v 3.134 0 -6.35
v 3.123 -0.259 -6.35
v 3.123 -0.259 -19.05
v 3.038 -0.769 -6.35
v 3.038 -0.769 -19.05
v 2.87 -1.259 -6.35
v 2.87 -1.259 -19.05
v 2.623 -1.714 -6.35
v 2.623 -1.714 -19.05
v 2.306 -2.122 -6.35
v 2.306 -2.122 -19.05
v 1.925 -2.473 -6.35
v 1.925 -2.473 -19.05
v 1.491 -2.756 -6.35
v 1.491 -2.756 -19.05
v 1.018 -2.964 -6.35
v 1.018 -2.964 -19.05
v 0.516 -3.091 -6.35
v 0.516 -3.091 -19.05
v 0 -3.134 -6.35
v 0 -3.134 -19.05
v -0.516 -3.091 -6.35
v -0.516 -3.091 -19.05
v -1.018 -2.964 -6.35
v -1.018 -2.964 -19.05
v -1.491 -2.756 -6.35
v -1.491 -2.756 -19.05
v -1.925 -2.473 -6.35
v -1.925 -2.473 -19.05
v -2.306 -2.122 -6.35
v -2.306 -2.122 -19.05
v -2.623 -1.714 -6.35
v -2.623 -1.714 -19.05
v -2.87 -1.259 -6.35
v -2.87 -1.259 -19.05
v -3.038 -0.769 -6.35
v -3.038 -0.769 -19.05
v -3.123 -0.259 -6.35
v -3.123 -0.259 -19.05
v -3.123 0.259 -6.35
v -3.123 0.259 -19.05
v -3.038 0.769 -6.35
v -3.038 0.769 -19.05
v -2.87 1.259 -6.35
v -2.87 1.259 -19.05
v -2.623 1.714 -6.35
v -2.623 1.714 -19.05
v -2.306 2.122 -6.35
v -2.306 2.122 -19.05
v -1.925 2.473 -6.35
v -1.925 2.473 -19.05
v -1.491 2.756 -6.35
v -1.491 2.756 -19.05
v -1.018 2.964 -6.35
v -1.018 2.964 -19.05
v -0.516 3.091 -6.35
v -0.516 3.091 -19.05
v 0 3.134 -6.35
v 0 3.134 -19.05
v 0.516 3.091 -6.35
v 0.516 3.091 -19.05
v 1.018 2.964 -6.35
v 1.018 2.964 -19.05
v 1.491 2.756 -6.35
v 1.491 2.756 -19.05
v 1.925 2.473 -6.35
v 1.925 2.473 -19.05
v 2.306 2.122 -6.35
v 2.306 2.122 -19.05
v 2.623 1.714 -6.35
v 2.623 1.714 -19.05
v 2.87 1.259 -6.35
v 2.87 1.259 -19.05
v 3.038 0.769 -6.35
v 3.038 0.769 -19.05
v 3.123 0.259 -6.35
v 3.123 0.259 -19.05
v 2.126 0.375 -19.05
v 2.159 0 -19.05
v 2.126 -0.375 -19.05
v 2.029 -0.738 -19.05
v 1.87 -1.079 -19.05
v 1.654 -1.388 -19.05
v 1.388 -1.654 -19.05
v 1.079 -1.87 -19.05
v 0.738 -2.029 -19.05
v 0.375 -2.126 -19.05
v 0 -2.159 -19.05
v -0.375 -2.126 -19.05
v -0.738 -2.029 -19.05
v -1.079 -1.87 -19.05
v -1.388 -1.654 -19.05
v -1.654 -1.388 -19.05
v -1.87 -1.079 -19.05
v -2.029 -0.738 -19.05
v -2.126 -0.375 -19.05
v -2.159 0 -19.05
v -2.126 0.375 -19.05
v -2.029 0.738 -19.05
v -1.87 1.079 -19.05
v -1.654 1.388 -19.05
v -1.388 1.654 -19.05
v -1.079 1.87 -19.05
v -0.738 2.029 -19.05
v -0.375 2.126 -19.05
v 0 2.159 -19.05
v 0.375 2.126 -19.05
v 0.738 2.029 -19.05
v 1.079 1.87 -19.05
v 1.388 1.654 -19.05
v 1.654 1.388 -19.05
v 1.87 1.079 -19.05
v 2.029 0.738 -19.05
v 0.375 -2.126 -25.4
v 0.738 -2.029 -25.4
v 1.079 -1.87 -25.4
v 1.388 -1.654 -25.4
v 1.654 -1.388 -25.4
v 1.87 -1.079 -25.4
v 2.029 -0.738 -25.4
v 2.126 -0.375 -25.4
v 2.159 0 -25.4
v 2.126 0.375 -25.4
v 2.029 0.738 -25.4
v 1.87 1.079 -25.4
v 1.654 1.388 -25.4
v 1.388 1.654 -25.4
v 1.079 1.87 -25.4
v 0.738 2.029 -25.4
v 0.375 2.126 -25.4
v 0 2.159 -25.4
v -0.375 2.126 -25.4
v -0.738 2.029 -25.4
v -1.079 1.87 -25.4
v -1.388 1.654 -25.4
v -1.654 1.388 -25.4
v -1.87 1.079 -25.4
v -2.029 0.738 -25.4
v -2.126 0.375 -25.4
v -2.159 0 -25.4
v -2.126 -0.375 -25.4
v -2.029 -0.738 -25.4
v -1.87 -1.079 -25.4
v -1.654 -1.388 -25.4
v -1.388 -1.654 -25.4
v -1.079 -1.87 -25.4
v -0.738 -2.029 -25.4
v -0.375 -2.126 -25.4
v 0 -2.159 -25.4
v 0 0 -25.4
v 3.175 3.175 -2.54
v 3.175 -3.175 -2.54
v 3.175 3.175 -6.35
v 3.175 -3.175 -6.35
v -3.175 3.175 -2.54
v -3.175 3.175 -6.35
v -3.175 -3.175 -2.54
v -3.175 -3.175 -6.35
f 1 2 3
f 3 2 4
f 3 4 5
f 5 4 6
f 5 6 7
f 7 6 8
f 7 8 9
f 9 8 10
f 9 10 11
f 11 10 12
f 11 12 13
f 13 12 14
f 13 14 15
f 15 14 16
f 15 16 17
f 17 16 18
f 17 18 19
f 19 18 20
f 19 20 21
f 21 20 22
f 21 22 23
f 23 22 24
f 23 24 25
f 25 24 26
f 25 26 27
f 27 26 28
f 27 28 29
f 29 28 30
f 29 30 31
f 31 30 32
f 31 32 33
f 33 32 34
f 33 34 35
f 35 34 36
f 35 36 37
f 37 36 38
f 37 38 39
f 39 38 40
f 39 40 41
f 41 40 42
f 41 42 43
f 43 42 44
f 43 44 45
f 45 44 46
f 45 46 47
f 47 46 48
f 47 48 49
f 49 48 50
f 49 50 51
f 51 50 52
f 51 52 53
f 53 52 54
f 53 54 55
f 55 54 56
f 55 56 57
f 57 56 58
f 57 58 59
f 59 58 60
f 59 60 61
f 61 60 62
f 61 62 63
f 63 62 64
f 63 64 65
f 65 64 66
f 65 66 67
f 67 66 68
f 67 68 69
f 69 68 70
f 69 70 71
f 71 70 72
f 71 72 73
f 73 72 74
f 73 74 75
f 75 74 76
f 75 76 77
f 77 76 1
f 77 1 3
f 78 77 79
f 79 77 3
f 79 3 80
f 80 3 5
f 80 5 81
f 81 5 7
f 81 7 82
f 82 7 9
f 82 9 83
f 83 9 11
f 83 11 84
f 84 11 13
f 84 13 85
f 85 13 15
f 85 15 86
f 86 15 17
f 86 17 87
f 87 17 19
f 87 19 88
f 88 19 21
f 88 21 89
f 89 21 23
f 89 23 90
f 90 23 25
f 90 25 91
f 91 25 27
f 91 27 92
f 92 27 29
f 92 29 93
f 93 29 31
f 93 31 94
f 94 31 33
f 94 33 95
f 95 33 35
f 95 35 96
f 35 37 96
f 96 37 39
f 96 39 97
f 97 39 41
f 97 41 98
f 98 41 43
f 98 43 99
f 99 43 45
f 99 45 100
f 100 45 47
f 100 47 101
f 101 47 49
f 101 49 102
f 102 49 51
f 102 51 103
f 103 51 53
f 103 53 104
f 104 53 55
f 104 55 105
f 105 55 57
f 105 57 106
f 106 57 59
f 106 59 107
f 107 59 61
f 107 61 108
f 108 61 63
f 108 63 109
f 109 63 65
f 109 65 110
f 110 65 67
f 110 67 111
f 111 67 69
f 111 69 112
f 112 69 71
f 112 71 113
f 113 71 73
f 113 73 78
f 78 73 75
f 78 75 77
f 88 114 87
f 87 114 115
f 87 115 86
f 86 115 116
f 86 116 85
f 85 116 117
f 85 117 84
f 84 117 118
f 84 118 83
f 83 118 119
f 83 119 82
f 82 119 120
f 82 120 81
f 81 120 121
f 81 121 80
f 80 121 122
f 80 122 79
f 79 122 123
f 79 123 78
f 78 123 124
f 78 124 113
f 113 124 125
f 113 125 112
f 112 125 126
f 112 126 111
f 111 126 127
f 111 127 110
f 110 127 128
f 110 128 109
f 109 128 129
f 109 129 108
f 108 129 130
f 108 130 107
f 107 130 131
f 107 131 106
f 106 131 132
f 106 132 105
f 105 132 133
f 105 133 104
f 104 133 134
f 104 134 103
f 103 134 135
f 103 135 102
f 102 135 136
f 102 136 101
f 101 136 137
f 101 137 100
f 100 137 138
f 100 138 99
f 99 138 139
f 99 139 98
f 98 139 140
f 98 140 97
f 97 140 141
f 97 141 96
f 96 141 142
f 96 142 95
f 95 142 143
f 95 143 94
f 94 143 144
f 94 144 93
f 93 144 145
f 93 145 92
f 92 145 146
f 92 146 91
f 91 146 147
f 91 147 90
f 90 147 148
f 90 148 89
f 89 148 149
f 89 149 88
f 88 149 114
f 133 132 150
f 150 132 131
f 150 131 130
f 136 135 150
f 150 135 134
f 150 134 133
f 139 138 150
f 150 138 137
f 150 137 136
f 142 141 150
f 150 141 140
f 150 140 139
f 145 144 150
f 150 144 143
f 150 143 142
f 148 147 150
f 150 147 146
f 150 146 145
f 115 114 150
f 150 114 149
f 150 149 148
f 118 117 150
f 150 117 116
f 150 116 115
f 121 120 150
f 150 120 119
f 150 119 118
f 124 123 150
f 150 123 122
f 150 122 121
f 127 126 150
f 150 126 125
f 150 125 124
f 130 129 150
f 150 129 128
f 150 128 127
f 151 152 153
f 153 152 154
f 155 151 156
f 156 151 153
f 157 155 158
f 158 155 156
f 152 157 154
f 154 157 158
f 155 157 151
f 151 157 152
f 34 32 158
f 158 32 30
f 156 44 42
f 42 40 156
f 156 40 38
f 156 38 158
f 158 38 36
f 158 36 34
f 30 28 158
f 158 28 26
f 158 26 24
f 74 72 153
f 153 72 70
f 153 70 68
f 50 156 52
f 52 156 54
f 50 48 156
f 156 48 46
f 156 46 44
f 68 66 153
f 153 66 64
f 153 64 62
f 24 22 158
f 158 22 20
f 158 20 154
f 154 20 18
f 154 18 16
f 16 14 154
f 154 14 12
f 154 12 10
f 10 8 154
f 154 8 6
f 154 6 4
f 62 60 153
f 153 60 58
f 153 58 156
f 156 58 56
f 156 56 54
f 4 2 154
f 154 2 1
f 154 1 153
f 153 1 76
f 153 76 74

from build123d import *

# Parameters (mm, degrees)
SKETCH6_R           = 3.687499751
CUT_EXTRUDE3_DEPTH  = 29.1338
SKETCH7_R           = 3.133725
BOSS_EXTRUDE1_DEPTH = 3.81
SKETCH8_R           = 2.159
BOSS_EXTRUDE2_DEPTH = 6.35
SKETCH9_R           = 4.699
CUT_EXTRUDE4_DEPTH  = 6.35
SKETCH10_W          = 6.35
SKETCH10_H          = 6.35
BOSS_EXTRUDE3_DEPTH = 3.81


with BuildPart() as part:
    # Sketch1 → Revolve1 (revolve)
    with BuildSketch(Plane(origin=(0, 0, 0), x_dir=(0, 0, -1), z_dir=(1, 0, 0))):
        Polygon((4.892085627, 0), (44.3738, 0), (44.3738, 2.159), (43.409235, 3.123565), (25.3238, 3.123565), (18.9738, 3.133725), (6.4516, 3.133725), (6.2738, 3.133725), (6.2738, 3.311525), (6.2738, 4.445), (6.2738, 4.699), (6.0198, 4.699), (0.635, 4.699), (0, 4.699), (0, 4.064), (0, 3.19405), (0, 0), align=None)
    revolve(axis=Axis((0, 0, -4.892085627), (0, 0, -1)))

    # Sketch6 → Cut-Extrude3 (cut)
    with BuildSketch(Plane(origin=(0, 0, -44.3738), x_dir=(-1, 0, 0), z_dir=(0, 0, -1))):
        Circle(SKETCH6_R)
    extrude(amount=-CUT_EXTRUDE3_DEPTH, mode=Mode.SUBTRACT)

    # Sketch7 → Boss-Extrude1 (add)
    with BuildSketch(Plane(origin=(0, 0, -15.24), x_dir=(-1, 0, 0), z_dir=(0, 0, -1))):
        Circle(SKETCH7_R)
    extrude(amount=BOSS_EXTRUDE1_DEPTH)

    # Sketch8 → Boss-Extrude2 (add)
    with BuildSketch(Plane(origin=(0, 0, -19.05), x_dir=(-1, 0, 0), z_dir=(0, 0, -1))):
        Circle(SKETCH8_R)
    extrude(amount=BOSS_EXTRUDE2_DEPTH)

    # Sketch9 → Cut-Extrude4 (cut)
    with BuildSketch(Plane.XY):
        Circle(SKETCH9_R)
    extrude(amount=-CUT_EXTRUDE4_DEPTH, mode=Mode.SUBTRACT)

    # Sketch10 → Boss-Extrude3 (add)
    with BuildSketch(Plane.XY.offset(-6.35)):
        Rectangle(SKETCH10_W, SKETCH10_H)
    extrude(amount=BOSS_EXTRUDE3_DEPTH)


solid = part.part
